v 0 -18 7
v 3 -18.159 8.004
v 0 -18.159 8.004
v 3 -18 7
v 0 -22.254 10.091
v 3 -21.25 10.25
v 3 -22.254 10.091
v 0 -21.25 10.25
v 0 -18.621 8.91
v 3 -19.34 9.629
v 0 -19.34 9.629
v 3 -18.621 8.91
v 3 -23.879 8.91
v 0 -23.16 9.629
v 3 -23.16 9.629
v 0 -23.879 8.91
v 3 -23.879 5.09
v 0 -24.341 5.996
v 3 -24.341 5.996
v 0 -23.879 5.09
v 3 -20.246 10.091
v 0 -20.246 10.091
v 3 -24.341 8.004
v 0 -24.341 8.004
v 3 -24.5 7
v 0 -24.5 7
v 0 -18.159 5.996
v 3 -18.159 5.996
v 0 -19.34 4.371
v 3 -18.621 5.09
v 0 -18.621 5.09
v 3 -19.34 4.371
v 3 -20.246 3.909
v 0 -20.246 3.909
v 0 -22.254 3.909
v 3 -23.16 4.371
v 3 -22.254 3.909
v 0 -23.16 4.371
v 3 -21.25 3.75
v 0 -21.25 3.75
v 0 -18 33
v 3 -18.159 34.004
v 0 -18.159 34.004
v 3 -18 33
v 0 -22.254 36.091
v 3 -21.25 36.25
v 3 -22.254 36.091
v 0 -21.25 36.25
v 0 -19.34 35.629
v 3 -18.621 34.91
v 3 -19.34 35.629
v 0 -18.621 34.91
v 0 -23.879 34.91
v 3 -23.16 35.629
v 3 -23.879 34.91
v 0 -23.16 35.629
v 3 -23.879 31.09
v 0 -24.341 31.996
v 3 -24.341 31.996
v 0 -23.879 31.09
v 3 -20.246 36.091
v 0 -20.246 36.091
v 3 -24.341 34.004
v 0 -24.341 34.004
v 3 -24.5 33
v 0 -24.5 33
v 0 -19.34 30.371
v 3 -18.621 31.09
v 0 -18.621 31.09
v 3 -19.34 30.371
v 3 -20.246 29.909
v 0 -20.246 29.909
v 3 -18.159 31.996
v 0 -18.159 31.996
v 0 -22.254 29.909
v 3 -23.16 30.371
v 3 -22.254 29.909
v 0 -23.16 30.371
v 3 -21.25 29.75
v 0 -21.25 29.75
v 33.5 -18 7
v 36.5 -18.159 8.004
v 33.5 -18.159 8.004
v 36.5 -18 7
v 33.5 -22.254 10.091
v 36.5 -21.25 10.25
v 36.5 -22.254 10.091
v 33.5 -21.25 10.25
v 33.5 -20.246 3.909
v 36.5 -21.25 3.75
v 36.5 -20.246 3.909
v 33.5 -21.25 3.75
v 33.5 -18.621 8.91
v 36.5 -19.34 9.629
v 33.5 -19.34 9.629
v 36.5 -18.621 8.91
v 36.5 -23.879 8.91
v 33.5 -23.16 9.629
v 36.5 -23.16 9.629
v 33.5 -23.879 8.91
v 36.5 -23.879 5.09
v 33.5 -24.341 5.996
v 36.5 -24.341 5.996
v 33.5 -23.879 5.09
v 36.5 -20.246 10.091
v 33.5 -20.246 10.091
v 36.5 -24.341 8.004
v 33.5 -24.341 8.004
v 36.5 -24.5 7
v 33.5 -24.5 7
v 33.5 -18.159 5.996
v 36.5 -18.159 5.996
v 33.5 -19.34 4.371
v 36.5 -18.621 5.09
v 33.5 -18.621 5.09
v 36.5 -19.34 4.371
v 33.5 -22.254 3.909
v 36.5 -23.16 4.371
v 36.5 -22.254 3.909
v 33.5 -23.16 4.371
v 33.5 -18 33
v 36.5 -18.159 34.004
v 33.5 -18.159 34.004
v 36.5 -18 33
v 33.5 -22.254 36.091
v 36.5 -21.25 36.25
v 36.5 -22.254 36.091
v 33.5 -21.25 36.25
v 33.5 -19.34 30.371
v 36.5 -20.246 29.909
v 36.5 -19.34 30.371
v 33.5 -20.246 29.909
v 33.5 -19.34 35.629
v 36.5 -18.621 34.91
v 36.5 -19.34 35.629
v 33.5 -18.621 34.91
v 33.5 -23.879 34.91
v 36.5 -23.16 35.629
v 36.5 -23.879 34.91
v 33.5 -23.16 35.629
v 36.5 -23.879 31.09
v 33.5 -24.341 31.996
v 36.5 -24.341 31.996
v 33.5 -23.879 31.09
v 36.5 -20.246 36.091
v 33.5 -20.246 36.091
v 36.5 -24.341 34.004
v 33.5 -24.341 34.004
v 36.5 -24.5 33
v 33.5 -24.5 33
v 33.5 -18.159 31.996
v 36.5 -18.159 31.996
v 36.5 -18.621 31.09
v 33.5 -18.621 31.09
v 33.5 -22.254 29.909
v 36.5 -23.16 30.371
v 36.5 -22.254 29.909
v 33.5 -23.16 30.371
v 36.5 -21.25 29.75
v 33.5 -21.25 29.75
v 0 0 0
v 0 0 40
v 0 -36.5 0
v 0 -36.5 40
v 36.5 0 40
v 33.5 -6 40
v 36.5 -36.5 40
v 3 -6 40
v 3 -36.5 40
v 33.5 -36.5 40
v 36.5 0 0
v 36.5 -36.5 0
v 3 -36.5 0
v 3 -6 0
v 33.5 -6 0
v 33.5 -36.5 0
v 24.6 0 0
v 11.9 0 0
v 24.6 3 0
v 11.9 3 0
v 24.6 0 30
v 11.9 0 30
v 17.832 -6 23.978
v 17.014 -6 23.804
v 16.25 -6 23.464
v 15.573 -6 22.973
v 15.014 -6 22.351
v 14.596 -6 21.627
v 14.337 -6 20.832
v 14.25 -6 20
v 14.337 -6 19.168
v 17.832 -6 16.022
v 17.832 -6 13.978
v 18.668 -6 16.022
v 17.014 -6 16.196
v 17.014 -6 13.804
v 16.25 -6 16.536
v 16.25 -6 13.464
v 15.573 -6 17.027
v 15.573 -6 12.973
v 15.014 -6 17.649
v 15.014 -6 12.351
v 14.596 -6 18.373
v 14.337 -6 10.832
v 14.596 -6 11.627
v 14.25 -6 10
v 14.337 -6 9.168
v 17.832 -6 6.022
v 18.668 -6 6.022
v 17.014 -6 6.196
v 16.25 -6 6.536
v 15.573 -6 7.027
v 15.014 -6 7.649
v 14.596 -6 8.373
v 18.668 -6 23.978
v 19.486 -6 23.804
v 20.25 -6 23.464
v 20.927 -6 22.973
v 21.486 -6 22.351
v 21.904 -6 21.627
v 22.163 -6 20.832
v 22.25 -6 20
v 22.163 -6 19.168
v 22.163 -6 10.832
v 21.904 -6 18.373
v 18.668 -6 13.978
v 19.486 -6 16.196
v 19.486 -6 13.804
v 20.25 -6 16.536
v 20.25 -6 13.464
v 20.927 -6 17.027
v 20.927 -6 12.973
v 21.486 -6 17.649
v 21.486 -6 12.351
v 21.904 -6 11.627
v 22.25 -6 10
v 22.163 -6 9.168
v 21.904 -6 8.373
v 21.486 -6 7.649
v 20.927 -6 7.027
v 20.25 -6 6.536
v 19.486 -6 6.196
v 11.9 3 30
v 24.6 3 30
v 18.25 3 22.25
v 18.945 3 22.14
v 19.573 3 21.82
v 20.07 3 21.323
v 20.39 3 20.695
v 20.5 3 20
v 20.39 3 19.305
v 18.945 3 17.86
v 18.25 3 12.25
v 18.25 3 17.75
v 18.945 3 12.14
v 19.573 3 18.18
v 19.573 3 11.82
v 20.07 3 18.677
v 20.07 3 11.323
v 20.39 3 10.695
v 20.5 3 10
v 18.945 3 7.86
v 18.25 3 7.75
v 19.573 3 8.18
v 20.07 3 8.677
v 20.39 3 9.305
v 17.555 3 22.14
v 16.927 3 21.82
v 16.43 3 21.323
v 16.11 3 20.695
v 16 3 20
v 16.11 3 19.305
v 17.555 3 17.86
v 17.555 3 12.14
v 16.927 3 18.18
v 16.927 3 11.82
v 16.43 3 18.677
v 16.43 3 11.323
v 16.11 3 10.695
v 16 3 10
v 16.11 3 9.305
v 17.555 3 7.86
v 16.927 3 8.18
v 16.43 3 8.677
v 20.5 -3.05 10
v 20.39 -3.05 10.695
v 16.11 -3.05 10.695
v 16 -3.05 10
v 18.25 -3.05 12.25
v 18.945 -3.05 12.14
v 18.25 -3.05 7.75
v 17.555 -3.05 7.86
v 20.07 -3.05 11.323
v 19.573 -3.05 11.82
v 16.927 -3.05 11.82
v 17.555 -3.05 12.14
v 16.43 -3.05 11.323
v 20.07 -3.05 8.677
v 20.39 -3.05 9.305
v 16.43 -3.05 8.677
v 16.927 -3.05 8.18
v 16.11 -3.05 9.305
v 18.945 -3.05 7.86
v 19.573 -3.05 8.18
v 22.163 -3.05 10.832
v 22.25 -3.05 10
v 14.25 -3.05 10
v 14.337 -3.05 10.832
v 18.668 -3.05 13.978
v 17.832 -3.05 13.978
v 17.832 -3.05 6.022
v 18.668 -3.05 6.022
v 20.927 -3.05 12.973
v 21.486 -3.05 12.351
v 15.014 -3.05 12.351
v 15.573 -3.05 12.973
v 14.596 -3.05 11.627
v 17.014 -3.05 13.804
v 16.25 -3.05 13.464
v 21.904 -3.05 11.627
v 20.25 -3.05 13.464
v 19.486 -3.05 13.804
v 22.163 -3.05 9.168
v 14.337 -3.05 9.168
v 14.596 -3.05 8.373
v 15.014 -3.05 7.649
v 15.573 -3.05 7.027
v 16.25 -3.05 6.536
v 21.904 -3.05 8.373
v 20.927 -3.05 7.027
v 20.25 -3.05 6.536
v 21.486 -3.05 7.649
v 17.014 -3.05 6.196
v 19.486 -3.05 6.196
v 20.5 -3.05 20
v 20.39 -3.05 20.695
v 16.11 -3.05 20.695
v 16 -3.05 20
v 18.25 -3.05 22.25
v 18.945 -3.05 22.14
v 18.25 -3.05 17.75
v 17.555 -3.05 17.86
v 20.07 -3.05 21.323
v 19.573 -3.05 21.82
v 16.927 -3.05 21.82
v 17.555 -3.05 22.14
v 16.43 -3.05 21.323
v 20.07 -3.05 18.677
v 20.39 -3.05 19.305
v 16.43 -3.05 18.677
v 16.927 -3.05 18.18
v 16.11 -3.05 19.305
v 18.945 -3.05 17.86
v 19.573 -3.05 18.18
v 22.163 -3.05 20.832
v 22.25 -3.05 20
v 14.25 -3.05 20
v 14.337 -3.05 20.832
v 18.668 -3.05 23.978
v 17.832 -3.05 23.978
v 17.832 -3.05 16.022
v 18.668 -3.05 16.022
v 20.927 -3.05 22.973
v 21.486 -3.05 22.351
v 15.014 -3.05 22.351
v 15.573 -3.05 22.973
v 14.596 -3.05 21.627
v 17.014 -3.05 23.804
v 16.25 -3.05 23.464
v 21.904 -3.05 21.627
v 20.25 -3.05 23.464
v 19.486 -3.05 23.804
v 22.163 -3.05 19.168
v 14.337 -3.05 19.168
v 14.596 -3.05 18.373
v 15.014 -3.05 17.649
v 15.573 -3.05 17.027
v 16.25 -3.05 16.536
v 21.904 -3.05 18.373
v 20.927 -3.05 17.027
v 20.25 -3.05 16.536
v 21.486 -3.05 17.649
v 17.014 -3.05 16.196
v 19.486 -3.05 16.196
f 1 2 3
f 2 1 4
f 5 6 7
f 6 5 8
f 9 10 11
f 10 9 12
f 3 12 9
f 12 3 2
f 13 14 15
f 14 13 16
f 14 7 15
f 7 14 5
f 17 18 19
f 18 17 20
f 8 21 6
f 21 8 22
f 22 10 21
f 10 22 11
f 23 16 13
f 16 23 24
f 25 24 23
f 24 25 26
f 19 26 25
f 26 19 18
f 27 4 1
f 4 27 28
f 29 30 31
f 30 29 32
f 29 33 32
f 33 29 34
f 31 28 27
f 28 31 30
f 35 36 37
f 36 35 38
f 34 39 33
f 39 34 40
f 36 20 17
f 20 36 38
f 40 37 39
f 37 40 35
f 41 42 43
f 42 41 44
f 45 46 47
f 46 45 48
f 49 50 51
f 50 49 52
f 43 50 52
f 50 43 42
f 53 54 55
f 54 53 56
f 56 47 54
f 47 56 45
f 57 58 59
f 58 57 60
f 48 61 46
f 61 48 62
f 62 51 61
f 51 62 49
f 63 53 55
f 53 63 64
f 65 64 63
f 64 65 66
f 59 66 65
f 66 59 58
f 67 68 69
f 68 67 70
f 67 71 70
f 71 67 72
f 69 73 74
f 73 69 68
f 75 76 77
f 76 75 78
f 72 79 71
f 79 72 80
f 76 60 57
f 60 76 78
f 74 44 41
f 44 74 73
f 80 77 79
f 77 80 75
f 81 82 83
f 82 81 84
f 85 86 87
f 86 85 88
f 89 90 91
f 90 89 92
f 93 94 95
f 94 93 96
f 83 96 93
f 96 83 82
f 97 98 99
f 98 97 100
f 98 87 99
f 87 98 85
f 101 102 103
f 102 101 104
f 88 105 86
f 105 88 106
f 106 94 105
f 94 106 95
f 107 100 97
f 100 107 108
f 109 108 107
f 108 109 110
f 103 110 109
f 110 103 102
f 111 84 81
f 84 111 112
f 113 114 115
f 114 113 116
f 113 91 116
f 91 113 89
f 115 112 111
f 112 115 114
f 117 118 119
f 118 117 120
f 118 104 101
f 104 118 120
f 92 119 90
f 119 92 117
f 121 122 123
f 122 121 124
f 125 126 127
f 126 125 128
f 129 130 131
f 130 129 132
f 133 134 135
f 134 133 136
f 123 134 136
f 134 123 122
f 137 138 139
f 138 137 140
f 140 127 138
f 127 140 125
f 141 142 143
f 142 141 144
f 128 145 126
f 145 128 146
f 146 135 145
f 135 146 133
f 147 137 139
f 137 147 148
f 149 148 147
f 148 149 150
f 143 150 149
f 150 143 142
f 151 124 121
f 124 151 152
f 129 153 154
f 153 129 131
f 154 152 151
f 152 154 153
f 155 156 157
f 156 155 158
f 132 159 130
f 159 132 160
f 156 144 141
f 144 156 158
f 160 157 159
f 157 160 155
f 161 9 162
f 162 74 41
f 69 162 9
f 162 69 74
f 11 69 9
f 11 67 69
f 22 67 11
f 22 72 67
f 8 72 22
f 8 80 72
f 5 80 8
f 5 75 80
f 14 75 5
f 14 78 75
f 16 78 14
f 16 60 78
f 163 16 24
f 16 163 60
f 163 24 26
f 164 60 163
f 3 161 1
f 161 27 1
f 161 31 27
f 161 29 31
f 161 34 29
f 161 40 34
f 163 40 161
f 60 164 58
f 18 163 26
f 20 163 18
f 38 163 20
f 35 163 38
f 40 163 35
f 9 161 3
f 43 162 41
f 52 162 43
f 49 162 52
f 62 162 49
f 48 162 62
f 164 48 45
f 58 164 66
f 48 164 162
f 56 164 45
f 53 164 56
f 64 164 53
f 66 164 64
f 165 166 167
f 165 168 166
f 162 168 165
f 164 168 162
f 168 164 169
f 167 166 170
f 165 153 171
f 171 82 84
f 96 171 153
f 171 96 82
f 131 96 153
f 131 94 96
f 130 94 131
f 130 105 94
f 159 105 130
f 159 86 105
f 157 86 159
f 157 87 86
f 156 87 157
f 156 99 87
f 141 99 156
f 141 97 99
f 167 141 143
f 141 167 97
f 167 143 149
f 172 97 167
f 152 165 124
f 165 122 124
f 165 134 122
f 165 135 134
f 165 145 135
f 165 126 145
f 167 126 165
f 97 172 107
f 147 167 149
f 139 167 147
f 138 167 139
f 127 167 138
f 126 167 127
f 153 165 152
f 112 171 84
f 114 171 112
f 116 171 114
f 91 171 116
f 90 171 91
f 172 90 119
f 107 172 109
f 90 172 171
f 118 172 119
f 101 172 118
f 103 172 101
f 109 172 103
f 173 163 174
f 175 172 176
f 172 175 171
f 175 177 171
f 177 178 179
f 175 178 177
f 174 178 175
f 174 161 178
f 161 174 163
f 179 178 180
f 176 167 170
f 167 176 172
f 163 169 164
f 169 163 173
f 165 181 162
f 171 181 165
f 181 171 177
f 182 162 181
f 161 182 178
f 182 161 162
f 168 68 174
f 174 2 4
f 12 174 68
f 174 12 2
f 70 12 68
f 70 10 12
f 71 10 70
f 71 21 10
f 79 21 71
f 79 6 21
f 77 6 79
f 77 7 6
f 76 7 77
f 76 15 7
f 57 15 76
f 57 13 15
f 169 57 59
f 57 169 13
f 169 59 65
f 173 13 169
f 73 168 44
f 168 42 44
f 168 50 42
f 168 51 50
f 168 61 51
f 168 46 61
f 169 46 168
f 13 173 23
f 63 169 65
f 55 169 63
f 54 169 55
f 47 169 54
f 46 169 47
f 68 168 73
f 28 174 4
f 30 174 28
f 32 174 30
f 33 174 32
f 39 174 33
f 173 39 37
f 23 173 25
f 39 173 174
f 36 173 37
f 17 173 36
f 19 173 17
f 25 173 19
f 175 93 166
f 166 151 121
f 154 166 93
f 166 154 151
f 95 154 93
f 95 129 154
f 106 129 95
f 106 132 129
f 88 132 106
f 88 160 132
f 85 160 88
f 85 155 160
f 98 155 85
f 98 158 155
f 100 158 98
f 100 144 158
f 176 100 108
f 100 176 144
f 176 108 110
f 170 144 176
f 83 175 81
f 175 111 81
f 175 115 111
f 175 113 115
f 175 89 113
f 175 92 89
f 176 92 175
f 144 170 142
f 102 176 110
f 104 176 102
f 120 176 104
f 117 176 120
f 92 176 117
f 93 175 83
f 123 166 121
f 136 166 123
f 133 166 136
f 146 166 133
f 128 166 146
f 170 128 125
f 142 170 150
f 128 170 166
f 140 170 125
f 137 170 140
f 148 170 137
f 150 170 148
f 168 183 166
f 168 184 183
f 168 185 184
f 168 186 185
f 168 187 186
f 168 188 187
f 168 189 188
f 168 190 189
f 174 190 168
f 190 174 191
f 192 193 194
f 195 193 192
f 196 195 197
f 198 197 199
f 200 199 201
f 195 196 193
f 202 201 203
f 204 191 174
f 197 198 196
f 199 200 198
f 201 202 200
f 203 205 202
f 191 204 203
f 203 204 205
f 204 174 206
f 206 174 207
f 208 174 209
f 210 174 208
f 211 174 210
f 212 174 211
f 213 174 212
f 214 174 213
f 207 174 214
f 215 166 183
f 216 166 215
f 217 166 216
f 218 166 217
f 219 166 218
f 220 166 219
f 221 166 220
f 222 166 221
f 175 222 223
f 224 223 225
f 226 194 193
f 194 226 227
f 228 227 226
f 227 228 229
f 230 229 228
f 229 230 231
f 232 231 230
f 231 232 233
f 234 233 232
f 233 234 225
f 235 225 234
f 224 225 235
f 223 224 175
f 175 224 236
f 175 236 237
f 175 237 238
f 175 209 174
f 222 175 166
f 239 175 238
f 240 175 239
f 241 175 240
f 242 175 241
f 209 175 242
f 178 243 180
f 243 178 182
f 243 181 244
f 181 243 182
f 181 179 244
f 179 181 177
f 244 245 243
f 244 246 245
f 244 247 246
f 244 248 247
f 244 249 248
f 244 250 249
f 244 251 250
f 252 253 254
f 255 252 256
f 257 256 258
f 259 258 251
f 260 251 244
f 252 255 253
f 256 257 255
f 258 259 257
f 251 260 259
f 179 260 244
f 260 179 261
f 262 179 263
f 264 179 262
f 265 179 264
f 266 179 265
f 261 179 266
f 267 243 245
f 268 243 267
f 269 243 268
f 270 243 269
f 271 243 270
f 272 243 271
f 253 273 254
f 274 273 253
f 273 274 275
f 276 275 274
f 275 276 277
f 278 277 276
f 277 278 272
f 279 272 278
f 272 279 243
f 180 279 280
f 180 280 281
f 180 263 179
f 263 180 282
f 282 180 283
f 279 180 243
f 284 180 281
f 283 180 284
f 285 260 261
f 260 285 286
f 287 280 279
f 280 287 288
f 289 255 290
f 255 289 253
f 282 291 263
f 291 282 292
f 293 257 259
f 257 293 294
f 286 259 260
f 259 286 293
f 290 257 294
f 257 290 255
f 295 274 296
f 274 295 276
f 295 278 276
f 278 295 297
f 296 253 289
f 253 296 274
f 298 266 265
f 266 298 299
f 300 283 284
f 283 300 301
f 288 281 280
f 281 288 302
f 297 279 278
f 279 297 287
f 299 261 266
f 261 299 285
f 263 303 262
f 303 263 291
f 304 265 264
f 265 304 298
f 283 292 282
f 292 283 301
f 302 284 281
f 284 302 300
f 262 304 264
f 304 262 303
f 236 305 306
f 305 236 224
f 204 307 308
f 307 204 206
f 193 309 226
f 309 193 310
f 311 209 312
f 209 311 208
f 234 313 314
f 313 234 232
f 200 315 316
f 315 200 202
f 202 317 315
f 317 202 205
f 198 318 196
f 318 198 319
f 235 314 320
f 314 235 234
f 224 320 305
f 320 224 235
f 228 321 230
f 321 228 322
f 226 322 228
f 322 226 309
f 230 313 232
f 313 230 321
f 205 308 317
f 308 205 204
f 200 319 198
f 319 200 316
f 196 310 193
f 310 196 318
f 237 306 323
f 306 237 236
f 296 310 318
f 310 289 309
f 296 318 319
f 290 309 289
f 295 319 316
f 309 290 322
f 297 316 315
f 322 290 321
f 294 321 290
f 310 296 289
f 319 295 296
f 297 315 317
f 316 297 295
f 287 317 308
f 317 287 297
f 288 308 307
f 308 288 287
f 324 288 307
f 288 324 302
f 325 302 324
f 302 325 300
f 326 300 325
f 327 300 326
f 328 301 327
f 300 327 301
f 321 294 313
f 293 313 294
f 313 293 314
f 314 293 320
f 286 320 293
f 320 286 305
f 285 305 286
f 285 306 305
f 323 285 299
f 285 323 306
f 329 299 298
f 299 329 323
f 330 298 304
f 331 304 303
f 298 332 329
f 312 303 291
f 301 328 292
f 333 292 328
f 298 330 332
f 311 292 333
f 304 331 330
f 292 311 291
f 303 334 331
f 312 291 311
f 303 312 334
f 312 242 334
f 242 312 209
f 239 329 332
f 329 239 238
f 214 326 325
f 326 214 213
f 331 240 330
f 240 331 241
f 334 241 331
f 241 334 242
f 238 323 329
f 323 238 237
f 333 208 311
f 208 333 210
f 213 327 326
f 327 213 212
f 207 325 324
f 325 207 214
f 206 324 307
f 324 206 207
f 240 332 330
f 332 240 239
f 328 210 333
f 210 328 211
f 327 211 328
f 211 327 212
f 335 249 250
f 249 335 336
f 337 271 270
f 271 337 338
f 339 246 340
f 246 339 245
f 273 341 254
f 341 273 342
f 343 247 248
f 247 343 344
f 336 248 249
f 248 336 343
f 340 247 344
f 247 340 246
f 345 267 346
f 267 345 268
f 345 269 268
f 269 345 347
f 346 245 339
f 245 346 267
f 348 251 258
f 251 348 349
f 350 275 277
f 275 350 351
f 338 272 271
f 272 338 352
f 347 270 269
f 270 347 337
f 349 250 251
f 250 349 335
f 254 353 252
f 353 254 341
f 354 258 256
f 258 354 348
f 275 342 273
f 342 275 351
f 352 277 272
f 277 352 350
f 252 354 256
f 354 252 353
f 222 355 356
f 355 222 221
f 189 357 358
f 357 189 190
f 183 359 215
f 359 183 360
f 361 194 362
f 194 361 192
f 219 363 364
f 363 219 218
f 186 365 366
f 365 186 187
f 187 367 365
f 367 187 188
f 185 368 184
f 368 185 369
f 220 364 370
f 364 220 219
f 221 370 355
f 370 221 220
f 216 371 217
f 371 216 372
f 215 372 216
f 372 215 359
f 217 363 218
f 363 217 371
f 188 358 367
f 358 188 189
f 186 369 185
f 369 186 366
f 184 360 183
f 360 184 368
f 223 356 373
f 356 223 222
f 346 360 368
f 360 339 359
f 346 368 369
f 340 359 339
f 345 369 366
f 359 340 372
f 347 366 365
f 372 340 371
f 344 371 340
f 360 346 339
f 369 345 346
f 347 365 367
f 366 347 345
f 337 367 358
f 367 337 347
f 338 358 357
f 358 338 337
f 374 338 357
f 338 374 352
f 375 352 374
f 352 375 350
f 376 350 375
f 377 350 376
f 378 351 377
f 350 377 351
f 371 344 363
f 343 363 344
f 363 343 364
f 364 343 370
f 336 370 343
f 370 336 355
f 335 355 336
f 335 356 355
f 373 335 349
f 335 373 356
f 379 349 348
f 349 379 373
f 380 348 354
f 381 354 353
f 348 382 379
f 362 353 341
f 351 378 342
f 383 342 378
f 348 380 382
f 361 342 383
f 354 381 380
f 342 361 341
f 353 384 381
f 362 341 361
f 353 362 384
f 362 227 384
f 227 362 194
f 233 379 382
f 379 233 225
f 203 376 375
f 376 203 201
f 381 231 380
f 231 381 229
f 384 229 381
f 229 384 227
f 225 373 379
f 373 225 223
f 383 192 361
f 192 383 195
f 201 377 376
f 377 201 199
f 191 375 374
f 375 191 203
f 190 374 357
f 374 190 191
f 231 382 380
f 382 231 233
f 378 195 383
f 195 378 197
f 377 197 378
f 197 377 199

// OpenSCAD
// file: ../src/lib/ALU_profile_holder_side.scad
include <../../parameters.scad>

module ALU_profile_holder_side(height) {
    wall_thickness = ALU_profile_holder_wall_thickness;
    
    //díry na přišroubování k Al profilům
    module screws_holes(diameter) {
        translate([0, 0, 7])
            rotate([90, 0, 90])
                cylinder(d=diameter, h=wall_thickness*2, center=true, $fn=20);
        
        translate([0, 0, height-7])
            rotate([90, 0, 90])
                cylinder(d=diameter, h=wall_thickness*2, center=true, $fn=20);
    }
    
    difference() {
        cube([ALU_profile_width+wall_thickness*2, ALU_profile_width + wall_thickness*2, height]);

        translate([wall_thickness, -0.1, -0.1])
            cube([ALU_profile_width, ALU_profile_width + 0.1, height + 0.2]);
        
        translate([wall_thickness*0.5, ALU_profile_width/2, 0]) {
            screws_holes(M6_screw_diameter);
            translate([ALU_profile_width+wall_thickness, 0, 0]) {
                screws_holes(M6_screw_diameter);
            }
        }
    }
}

ALU_profile_holder_side(30);
// file: ../src/888_5001.scad
include <../parameters.scad>
use <./lib/ALU_profile_holder_side.scad>

module 888_5001() {
    
    m4_head_diameter = 8;
    m4_head_height = 3;
    
    wall_thickness = ALU_profile_holder_wall_thickness;
    
    difference() {
        union() {
            translate([0, -ALU_profile_width-wall_thickness*2, 0])
                ALU_profile_holder_side(strain_gauge_screw_distance+30);
            
            translate([(ALU_profile_width+wall_thickness*2)/2-strain_gauge_width/2, 0, 0])
                cube([strain_gauge_width, m4_head_height, strain_gauge_screw_distance+20]);
        }
        
        translate([(ALU_profile_width+wall_thickness*2)/2, 0, 10]) {
            rotate([90, 0, 0]) {
                cylinder(d=M4_screw_diameter, h=wall_thickness*5+m4_head_height, $fn=20, center=true);
                translate([0, 0, wall_thickness*2-m4_head_height/2+0.1])
                    cylinder(d=m4_head_diameter, h=m4_head_height+0.1, center=true, $fn=30);
            }
        }
        translate([(ALU_profile_width+wall_thickness*2)/2, 0, strain_gauge_screw_distance+10]) {
            rotate([90, 0, 0]) {
                cylinder(d=M4_screw_diameter, h=wall_thickness*5+m4_head_height, $fn=20, center=true);
                translate([0, 0, wall_thickness*2-m4_head_height/2+0.1])
                    cylinder(d=m4_head_diameter, h=m4_head_height+0.1, center=true, $fn=30);
            }
        }
    }
}

888_5001();
// file: ../parameters.scad
maximum_printable_size = 150;

layer_thickness = 0.3;
global_clearance = 0.5;


// scale parameters
tower_height = 220;
mid_base_width = 400;
mid_base_height = 160;
mid_base_length = 300;
base_mid_base_hinge_offset = 50;
counterweight_length = 200;


//Screw diameter and nut for M10 [mm]
M10_screw_diameter = 10.4;
M10_head_height = 10;
M10_head_diameter = 16+0.5;
M10_nut_height = 10.5;
M10_nut_diameter = 25.5;
M10_nut_pocket = 22.3;

//Screw diameter for M8 [mm]
M8_screw_diameter = 8.6;
M8_head_height = 8;
M8_head_diameter = 13.5;
M8_nut_height = 7.5;
M8_square_nut_thin_height = 4.5;
M8_nut_diameter = 14.4 + 0.5;
M8_nut_pocket = 13 + 0.5;
M8_washer_diameter = 16;
M8_washer_thickness = 1.5;


//Screw diameter and nut for M6 [mm]
M6_screw_diameter=6.5;
M6_head_diameter = 10+0.5;
M6_head_height = 6;
M6_nut_height = 4.9;
M6_nut_diameter = 11.8;
M6_nut_pocket = 10.4;
M6_square_nut_height = 3;
M6_square_nut_diameter = 10;
M6_washer_thickness = 1.6;

//Screw diameter and nut for M5 [mm]
M5_screw_diameter=5.5;
M5_head_height = 5;
M5_head_diameter = 13+0.5;
M5_nut_height = 4.5;
M5_nut_diameter = 9.4;
M5_nut_pocket = 8.4;

//Screw diameter and nut for M4 [mm]
M4_screw_diameter=4.5;
M4_screw_head_height = 4;
M4_nut_height = 3.2;
M4_nut_diameter = 8.4;
M4_nut_pocket = 7.5;

//Screw diameter and nut for M3 [mm]
M3_screw_diameter = 3.2;
M3_nut_height = 2.7;
M3_nut_diameter = 6.6;
M3_nut_pocket = 5.6;
M3_screw_head_height = 3;

//Screw diameter and nut for M2,5 [mm]
M2_5_screw_diameter = 2.7;
M2_5_nut_height = 2.3;
M2_5_nut_diameter = 6;
M2_5_nut_pocket = 5.5;

// kulove lozisko

bearing_efsm_08_h = 33+1;
bearing_efsm_08_m = 22;
bearing_efsm_08_db = 18;
bearing_efsm_08_ag = 10.5;
bearing_efsm_08_n = M4_screw_diameter;
bearing_efsm_08_a1 = 5.5;
bearing_efsm_08_d = 8.25;
bearing_efsm_08_B = 8; // ball height

bearing_efsm_10_h = 38+1;
bearing_efsm_10_m = 26;
bearing_efsm_10_db = 21.9;
bearing_efsm_10_ag = 12+0.2;
bearing_efsm_10_n = M5_screw_diameter;
bearing_efsm_10_a1 = 6.5;
bearing_efsm_10_d = 10.25;


bearing_efsm_12_width = 40+1;
bearing_efsm_12_h = bearing_efsm_12_width;
bearing_efsm_12_boltd = 28/2; // polovina vzdalenosti mezi srouby
bearing_efsm_12_m = bearing_efsm_12_boltd*2;
bearing_efsm_12_db = 25;
bearing_efsm_12_ag = 13;
bearing_efsm_12_a1 = 7;
bearing_efsm_12_n = M5_screw_diameter;
bearing_efsm_12_d = 12.15;
bearing_efsm_12_B = 10; // ball height
bearing_efsm_space = 1;

bearing_efsm_17_width = 54+1;
bearing_efsm_17_h = bearing_efsm_17_width;
bearing_efsm_17_boltd = 38/2; // polovina vzdalenosti mezi srouby
bearing_efsm_17_m = bearing_efsm_17_boltd*2;
bearing_efsm_17_db = 35;
bearing_efsm_17_ag = 18;
bearing_efsm_17_n = M6_screw_diameter;
bearing_efsm_17_a1 = 10;
bearing_efsm_17_B = 17; // ball height

//limcove lozisko
bearing_EFOM_10_L=26; //celkova sirka zakladny
bearing_EFOM_10_d1=10.3;//diametr otvoru real=10 mm
bearing_EFOM_10_dB=22;//diametr vystupku pro ulozeni lozika
bearing_EFOM_10_H=52;//celková delka zakladny
bearing_EFOM_10_J=36;// hole pitch
bearing_EFOM_10_A1=6.5;//vyska pouzdra
bearing_EFOM_10_Ag=12;//celkova vyska
bearing_EFOM_10_N1=5;//sirka otvoru pro sroub
bearing_EFOM_10_N2=8;//delka otvoru pro sroub
bearing_EFOM_10_m=36;//roztec der pro sroub
bearing_EFOM_10_h=9;//vyska lozika


608_bearing_outer_diameter = 22.3;
608_bearing_inner_diameter = 16;
608_bearing_thickness = 7.1;


// 20 KG servo parameters

servo_20kg_axis_offset = 9.375; // jak je osa mimo stredu
servo_20kg_body_x = 42;
servo_20kg_body_y = 21;
servo_20kg_body_z = 40;
servo_20kg_thread_x = 49/2;
servo_20kg_thread_y = 10/2;
servo_20kg_body_below = 10; // jak hluboko je tělo serva pod drzaky na srouby
servo_20kg_below = 25.8; // jak hluboko je páka serva pod drzaky na srouby

servo_20kg_bolt_d = 2.5+0.3;
servo_20kg_nut_d = 5+0.3;


//strain gauge
strain_gauge_width = 12.7;
strain_gauge_length = 75.1;
strain_gauge_screw_distance = 10;

//ALU profile
ALU_profile_width = 30.5;
ALU_profile_holder_wall_thickness = 3;
ALU_profile_groove_width = 8;

//pillow block bearing
//https://www.igus.eu/product/372
//Part no. KSTM-08
KSTM08_screws_distance = 33;         //m
KSTM08_screws_holes_diameter = 4.5;  //d2
KSTM08_flange_thickness = 6;         //h3
KSTM08_case_width = 9;               //C1
KSTM08_case_length = 47;             //a
KSTM08_ball_width = 12;              //B
KSTM08_ball_hole_diameter = 7.85;    //d1


//ložiska pro malý rotor
bearing_outer_diameter = 10.2;    // Rozměr B1 v nákresu s přídavkem na toleranci otvoru
bearing_thickness = 4;        // Rozměr B2 v nákresu
//bearing_shaft_length = 19.5;    // Rozměr B3 v nákresu, Originalni hodnota 19.5
bearing_shaft_length = 20;    // Rozměr B3 v nákresu


//parametry víčka s telemetrickou anténou
S01_sila_materialu=1.2;
S01_vyska_horni_zavit=10;
S01_hloubka_zavitu=4;
S01_prumer_vnitrni=50;
LO_spodni_prumer=17.2;
LO_vyska_bez_krytu=15;
S01_tolerance_zavit=1.5;
R01_vyska_prekryti_statoru=10;

g3_0_cone1 = 70;
g3_0_srcew_dist = 55;
// main file
include <../parameters.scad>
use <../src/888_5001.scad>

888_5001();
